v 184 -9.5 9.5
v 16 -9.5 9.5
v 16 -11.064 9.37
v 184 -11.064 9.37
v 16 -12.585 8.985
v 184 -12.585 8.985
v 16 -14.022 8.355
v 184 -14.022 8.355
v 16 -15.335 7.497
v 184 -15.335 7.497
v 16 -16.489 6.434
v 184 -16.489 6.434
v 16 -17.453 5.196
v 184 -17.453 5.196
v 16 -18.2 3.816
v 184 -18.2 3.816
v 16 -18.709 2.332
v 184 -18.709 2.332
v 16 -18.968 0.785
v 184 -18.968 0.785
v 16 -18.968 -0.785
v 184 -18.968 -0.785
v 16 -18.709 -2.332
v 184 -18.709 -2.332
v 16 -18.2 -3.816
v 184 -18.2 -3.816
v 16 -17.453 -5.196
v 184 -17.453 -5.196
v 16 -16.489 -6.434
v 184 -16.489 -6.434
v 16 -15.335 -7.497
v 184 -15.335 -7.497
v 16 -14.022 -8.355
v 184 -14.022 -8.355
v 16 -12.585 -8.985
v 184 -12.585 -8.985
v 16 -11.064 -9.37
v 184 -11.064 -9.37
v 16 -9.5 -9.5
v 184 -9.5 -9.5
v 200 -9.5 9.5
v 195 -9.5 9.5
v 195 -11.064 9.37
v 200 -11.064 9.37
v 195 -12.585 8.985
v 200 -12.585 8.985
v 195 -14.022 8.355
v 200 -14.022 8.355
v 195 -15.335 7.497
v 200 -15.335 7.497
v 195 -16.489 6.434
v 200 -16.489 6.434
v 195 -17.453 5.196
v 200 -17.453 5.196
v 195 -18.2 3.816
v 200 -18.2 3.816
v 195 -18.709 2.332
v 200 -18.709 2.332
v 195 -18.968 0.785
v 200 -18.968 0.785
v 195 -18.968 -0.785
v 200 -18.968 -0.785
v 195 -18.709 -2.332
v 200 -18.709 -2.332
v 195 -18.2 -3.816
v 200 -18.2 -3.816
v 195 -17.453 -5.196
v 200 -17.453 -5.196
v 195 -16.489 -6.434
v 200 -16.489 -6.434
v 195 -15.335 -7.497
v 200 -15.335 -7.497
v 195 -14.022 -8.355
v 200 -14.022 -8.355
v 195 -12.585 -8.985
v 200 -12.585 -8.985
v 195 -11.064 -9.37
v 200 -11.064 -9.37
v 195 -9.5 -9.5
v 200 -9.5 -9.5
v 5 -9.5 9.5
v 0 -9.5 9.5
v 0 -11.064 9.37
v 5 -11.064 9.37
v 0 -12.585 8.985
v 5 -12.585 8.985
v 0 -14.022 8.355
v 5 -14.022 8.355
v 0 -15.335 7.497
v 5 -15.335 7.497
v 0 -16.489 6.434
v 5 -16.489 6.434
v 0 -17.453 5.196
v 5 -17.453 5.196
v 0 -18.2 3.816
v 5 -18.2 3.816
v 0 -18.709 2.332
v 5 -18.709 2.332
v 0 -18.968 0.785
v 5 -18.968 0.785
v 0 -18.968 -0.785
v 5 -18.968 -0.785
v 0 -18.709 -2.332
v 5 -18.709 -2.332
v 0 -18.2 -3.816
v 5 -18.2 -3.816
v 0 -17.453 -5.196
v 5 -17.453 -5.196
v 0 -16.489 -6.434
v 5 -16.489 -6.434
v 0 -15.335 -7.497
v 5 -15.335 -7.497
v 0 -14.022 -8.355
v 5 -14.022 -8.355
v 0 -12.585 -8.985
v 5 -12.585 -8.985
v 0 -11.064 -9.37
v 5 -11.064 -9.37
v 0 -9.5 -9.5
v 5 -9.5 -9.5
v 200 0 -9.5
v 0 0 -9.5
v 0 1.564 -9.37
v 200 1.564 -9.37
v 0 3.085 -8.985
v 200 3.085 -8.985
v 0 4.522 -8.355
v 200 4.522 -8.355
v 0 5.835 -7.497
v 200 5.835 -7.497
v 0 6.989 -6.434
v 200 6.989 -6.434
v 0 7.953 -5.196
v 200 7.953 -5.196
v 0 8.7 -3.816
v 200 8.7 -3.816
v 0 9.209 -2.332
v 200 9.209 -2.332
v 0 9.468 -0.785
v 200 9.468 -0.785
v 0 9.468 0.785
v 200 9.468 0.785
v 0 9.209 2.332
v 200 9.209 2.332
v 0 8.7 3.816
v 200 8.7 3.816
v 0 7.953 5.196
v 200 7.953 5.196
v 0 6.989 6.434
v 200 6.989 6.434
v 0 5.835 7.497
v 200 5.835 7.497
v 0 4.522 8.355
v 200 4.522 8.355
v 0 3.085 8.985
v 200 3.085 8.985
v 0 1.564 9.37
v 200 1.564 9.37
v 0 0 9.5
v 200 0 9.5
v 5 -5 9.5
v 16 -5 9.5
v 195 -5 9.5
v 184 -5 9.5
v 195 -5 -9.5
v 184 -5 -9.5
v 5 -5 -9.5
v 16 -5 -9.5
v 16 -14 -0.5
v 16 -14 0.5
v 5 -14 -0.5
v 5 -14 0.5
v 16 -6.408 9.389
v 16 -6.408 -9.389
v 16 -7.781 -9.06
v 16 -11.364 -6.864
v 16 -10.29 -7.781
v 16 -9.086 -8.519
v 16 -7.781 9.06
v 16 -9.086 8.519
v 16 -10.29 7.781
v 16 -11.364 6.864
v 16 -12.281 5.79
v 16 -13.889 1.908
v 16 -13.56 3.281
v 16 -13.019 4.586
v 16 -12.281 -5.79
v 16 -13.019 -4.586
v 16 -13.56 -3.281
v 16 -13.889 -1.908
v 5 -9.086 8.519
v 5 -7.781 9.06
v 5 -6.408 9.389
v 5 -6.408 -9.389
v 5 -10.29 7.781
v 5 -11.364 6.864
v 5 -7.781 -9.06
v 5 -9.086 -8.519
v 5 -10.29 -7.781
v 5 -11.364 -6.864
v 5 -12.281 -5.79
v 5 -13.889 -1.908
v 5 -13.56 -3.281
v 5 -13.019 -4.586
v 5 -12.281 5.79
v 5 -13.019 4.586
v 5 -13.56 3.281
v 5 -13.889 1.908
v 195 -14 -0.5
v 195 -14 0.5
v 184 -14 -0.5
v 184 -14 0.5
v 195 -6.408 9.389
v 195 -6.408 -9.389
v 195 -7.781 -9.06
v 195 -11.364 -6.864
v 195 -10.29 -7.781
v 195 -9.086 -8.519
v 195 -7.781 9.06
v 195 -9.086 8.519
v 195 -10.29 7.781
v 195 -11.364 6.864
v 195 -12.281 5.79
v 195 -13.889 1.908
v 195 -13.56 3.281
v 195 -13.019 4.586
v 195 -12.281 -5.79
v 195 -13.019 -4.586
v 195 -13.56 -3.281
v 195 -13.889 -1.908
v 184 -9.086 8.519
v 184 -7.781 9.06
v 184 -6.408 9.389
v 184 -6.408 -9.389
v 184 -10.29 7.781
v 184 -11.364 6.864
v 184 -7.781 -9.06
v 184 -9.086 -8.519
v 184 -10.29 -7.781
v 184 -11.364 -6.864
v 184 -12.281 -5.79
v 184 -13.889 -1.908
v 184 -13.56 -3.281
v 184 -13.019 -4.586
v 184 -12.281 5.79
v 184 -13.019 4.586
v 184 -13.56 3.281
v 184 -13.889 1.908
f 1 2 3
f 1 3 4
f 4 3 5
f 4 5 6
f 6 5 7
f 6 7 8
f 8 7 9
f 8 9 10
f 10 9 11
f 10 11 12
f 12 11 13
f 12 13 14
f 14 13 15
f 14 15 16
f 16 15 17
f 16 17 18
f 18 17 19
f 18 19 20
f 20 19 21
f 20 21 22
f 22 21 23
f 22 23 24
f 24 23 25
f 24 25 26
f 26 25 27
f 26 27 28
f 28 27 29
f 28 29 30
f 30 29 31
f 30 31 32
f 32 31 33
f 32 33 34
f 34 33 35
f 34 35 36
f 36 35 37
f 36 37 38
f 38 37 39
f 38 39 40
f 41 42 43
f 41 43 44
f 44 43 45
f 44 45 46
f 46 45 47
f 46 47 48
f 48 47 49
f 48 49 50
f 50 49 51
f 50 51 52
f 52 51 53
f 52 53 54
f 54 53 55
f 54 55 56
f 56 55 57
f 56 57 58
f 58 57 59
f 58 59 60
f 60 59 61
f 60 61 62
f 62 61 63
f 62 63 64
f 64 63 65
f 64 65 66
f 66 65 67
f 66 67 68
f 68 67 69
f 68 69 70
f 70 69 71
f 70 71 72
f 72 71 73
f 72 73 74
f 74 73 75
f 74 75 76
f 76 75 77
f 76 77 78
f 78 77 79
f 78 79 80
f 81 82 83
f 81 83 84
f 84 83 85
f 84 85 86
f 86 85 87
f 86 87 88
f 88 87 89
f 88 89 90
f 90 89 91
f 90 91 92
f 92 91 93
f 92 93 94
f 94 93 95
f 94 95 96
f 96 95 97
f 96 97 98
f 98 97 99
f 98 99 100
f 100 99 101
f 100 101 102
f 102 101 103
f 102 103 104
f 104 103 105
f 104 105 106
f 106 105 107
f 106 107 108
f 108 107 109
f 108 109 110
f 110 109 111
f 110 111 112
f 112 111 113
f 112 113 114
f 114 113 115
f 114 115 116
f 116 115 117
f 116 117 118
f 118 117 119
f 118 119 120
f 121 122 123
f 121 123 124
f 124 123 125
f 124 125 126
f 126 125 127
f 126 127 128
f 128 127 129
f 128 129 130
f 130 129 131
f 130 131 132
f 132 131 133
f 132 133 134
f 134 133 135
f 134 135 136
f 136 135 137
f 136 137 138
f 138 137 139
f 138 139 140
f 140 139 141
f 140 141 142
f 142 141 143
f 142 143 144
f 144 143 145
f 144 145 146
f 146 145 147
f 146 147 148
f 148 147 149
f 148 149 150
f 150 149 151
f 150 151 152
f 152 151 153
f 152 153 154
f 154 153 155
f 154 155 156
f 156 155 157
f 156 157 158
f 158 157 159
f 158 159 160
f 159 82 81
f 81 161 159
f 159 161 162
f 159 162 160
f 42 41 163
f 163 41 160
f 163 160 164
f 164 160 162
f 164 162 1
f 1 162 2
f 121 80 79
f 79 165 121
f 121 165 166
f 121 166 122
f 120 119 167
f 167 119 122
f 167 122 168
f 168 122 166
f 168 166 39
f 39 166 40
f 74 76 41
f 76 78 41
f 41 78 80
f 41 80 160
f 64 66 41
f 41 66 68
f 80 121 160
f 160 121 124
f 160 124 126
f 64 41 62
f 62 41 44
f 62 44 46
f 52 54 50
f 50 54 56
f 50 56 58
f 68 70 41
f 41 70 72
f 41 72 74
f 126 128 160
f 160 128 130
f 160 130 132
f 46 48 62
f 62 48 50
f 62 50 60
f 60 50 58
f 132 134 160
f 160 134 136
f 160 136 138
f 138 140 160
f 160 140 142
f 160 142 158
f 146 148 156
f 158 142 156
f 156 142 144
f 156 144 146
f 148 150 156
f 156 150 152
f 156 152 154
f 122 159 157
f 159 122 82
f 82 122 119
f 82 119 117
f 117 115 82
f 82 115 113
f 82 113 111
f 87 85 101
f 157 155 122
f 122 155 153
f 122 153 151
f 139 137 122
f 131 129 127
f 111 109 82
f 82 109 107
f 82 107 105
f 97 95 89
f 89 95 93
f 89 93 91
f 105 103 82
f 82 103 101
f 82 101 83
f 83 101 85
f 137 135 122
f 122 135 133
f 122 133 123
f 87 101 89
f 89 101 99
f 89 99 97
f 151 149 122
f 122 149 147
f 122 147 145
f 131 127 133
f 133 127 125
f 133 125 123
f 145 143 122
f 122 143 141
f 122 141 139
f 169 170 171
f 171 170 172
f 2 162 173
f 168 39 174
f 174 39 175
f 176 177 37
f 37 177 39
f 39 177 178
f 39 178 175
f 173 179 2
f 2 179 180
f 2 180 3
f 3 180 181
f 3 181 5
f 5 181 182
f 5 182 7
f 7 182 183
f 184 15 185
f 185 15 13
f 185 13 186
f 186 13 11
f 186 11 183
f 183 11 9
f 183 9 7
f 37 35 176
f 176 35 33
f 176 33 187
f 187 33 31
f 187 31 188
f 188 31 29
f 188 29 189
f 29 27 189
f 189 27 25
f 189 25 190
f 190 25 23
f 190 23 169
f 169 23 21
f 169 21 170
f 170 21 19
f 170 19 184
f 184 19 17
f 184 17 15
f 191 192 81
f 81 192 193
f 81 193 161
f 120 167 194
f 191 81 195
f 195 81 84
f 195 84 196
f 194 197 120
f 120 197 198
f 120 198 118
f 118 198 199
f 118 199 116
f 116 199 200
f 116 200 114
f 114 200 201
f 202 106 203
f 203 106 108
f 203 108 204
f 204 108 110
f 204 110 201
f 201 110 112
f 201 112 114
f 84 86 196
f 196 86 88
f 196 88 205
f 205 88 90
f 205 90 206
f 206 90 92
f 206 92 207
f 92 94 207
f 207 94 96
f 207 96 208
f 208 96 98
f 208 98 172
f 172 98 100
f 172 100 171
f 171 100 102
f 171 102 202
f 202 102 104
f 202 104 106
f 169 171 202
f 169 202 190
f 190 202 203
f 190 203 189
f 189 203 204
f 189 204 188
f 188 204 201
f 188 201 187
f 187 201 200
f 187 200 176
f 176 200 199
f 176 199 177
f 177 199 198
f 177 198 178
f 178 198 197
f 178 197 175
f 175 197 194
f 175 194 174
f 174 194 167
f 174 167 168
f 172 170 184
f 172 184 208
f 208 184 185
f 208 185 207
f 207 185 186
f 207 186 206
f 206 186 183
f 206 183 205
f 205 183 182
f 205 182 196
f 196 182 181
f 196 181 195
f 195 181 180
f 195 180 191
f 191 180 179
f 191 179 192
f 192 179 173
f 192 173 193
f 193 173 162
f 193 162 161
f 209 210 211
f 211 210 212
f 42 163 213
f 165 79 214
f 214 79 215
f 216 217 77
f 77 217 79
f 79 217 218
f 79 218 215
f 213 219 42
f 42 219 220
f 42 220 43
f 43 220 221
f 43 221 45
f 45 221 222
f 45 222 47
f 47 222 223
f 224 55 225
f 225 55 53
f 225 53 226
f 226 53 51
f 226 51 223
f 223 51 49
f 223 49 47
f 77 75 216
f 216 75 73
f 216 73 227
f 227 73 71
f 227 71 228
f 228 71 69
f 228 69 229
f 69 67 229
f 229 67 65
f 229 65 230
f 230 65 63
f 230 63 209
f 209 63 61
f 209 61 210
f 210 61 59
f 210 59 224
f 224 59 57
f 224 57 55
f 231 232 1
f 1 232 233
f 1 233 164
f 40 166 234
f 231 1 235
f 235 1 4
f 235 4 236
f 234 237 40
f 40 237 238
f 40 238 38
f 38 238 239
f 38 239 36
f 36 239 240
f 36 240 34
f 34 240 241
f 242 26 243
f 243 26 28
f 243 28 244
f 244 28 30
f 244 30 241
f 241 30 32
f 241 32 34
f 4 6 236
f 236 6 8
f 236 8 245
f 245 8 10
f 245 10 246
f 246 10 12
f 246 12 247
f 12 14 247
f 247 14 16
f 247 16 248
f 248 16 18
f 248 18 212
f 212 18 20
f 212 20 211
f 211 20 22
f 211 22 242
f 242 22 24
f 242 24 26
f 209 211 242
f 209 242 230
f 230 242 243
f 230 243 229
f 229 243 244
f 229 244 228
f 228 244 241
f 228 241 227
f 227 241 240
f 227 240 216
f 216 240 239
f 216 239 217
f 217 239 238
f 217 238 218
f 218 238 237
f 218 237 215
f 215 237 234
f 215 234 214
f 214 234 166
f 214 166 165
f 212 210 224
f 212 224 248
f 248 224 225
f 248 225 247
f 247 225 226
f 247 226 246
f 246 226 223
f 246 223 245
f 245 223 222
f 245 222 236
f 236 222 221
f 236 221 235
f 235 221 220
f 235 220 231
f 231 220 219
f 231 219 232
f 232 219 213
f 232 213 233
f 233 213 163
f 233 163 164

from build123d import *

# Parameters (mm, degrees)
BOSS_EXTRUDE1_DEPTH = 200
SKETCH2_W           = 11
SKETCH2_H           = 5
CUT_EXTRUDE1_DEPTH  = 10
FILLET1_R           = 9
MIRROR1_START       = 184
MIRROR1_DEPTH       = 11


with BuildPart() as part:
    # Sketch1 → Boss-Extrude1 (new body)
    with BuildSketch(Plane(origin=(0, 0, 0), x_dir=(0, 0, -1), z_dir=(1, 0, 0))):
        with BuildLine():
            Line((-9.5, 0), (-9.5, -9.5))
            ThreePointArc((-9.5, -9.5), (0, -19), (9.5, -9.5))
            Line((9.5, -9.5), (9.5, 0))
            ThreePointArc((9.5, 0), (0, 9.5), (-9.5, 0))
        make_face()
    extrude(amount=BOSS_EXTRUDE1_DEPTH)

    # Sketch2 → Cut-Extrude1 (cut, symmetric)
    with BuildSketch(Plane.XY):
        with Locations((10.5, -16.5)):
            Rectangle(SKETCH2_W, SKETCH2_H)
    extrude(amount=CUT_EXTRUDE1_DEPTH, both=True, mode=Mode.SUBTRACT)

    # Fillet1
    # the kernel refuses this fillet: 9 mm, written as the material it takes off along each edge
    with BuildSketch(Plane(origin=(16, -14, -8.366600265), x_dir=(0, 0.9921634898396948, -0.12494642623587741), z_dir=(-1, 0, 0))) as fillet1_piece_1:
        with BuildLine():
            CenterArc((7.946567819, -8.929471409), FILLET1_R, 82.822338024, 90)
            Line((-0.98290359, -7.804953572), (-1.875850731, -7.692501789))
            Line((-1.875850731, -7.692501789), (-0.892947141, 0.112451784))
            Line((-0.892947141, 0.112451784), (-0.323939264, 0.839680507))
            ThreePointArc((-0.323939264, 0.839680507), (4.718801734, 1.455206059), (9.183537439, 0.892947141))
            Line((9.183537439, 0.892947141), (9.071085655, 0))
        make_face()
    extrude(amount=11, mode=Mode.SUBTRACT)
    with BuildSketch(Plane(origin=(16, -14, 8.366600265), x_dir=(0, 0.9921634898396948, 0.1249464262358778), z_dir=(-1, 0, 0))) as fillet1_piece_2:
        with BuildLine():
            CenterArc((7.946567819, 8.929471409), FILLET1_R, 187.177661976, 90)
            Line((-0.98290359, 7.804953572), (-1.875850731, 7.692501789))
            Line((-1.875850731, 7.692501789), (-0.892947141, -0.112451784))
            Line((-0.892947141, -0.112451784), (-0.323939264, -0.839680507))
            ThreePointArc((-0.323939264, -0.839680507), (4.718801734, -1.455206059), (9.183537439, -0.892947141))
            Line((9.183537439, -0.892947141), (9.071085655, 0))
        make_face()
    extrude(amount=11, mode=Mode.SUBTRACT)

    # Mirror1: read off the stored shape, not the designer's step
    # Mirror1 outline → Mirror1 (cut)
    with BuildSketch(Plane.YZ.offset(MIRROR1_START)):
        with BuildLine():
            ThreePointArc((-5, -9.5), (-11.363961031, -6.863961031), (-14, -0.5))
            Line((-14, -0.5), (-14, 0.5))
            ThreePointArc((-14, 0.5), (-11.363961031, 6.863961031), (-5, 9.5))
            Line((-5, 9.5), (-9.5, 9.5))
            ThreePointArc((-9.5, 9.5), (-19, 0), (-9.5, -9.5))
            Line((-9.5, -9.5), (-5, -9.5))
        make_face()
    extrude(amount=MIRROR1_DEPTH, mode=Mode.SUBTRACT)


solid = part.part
